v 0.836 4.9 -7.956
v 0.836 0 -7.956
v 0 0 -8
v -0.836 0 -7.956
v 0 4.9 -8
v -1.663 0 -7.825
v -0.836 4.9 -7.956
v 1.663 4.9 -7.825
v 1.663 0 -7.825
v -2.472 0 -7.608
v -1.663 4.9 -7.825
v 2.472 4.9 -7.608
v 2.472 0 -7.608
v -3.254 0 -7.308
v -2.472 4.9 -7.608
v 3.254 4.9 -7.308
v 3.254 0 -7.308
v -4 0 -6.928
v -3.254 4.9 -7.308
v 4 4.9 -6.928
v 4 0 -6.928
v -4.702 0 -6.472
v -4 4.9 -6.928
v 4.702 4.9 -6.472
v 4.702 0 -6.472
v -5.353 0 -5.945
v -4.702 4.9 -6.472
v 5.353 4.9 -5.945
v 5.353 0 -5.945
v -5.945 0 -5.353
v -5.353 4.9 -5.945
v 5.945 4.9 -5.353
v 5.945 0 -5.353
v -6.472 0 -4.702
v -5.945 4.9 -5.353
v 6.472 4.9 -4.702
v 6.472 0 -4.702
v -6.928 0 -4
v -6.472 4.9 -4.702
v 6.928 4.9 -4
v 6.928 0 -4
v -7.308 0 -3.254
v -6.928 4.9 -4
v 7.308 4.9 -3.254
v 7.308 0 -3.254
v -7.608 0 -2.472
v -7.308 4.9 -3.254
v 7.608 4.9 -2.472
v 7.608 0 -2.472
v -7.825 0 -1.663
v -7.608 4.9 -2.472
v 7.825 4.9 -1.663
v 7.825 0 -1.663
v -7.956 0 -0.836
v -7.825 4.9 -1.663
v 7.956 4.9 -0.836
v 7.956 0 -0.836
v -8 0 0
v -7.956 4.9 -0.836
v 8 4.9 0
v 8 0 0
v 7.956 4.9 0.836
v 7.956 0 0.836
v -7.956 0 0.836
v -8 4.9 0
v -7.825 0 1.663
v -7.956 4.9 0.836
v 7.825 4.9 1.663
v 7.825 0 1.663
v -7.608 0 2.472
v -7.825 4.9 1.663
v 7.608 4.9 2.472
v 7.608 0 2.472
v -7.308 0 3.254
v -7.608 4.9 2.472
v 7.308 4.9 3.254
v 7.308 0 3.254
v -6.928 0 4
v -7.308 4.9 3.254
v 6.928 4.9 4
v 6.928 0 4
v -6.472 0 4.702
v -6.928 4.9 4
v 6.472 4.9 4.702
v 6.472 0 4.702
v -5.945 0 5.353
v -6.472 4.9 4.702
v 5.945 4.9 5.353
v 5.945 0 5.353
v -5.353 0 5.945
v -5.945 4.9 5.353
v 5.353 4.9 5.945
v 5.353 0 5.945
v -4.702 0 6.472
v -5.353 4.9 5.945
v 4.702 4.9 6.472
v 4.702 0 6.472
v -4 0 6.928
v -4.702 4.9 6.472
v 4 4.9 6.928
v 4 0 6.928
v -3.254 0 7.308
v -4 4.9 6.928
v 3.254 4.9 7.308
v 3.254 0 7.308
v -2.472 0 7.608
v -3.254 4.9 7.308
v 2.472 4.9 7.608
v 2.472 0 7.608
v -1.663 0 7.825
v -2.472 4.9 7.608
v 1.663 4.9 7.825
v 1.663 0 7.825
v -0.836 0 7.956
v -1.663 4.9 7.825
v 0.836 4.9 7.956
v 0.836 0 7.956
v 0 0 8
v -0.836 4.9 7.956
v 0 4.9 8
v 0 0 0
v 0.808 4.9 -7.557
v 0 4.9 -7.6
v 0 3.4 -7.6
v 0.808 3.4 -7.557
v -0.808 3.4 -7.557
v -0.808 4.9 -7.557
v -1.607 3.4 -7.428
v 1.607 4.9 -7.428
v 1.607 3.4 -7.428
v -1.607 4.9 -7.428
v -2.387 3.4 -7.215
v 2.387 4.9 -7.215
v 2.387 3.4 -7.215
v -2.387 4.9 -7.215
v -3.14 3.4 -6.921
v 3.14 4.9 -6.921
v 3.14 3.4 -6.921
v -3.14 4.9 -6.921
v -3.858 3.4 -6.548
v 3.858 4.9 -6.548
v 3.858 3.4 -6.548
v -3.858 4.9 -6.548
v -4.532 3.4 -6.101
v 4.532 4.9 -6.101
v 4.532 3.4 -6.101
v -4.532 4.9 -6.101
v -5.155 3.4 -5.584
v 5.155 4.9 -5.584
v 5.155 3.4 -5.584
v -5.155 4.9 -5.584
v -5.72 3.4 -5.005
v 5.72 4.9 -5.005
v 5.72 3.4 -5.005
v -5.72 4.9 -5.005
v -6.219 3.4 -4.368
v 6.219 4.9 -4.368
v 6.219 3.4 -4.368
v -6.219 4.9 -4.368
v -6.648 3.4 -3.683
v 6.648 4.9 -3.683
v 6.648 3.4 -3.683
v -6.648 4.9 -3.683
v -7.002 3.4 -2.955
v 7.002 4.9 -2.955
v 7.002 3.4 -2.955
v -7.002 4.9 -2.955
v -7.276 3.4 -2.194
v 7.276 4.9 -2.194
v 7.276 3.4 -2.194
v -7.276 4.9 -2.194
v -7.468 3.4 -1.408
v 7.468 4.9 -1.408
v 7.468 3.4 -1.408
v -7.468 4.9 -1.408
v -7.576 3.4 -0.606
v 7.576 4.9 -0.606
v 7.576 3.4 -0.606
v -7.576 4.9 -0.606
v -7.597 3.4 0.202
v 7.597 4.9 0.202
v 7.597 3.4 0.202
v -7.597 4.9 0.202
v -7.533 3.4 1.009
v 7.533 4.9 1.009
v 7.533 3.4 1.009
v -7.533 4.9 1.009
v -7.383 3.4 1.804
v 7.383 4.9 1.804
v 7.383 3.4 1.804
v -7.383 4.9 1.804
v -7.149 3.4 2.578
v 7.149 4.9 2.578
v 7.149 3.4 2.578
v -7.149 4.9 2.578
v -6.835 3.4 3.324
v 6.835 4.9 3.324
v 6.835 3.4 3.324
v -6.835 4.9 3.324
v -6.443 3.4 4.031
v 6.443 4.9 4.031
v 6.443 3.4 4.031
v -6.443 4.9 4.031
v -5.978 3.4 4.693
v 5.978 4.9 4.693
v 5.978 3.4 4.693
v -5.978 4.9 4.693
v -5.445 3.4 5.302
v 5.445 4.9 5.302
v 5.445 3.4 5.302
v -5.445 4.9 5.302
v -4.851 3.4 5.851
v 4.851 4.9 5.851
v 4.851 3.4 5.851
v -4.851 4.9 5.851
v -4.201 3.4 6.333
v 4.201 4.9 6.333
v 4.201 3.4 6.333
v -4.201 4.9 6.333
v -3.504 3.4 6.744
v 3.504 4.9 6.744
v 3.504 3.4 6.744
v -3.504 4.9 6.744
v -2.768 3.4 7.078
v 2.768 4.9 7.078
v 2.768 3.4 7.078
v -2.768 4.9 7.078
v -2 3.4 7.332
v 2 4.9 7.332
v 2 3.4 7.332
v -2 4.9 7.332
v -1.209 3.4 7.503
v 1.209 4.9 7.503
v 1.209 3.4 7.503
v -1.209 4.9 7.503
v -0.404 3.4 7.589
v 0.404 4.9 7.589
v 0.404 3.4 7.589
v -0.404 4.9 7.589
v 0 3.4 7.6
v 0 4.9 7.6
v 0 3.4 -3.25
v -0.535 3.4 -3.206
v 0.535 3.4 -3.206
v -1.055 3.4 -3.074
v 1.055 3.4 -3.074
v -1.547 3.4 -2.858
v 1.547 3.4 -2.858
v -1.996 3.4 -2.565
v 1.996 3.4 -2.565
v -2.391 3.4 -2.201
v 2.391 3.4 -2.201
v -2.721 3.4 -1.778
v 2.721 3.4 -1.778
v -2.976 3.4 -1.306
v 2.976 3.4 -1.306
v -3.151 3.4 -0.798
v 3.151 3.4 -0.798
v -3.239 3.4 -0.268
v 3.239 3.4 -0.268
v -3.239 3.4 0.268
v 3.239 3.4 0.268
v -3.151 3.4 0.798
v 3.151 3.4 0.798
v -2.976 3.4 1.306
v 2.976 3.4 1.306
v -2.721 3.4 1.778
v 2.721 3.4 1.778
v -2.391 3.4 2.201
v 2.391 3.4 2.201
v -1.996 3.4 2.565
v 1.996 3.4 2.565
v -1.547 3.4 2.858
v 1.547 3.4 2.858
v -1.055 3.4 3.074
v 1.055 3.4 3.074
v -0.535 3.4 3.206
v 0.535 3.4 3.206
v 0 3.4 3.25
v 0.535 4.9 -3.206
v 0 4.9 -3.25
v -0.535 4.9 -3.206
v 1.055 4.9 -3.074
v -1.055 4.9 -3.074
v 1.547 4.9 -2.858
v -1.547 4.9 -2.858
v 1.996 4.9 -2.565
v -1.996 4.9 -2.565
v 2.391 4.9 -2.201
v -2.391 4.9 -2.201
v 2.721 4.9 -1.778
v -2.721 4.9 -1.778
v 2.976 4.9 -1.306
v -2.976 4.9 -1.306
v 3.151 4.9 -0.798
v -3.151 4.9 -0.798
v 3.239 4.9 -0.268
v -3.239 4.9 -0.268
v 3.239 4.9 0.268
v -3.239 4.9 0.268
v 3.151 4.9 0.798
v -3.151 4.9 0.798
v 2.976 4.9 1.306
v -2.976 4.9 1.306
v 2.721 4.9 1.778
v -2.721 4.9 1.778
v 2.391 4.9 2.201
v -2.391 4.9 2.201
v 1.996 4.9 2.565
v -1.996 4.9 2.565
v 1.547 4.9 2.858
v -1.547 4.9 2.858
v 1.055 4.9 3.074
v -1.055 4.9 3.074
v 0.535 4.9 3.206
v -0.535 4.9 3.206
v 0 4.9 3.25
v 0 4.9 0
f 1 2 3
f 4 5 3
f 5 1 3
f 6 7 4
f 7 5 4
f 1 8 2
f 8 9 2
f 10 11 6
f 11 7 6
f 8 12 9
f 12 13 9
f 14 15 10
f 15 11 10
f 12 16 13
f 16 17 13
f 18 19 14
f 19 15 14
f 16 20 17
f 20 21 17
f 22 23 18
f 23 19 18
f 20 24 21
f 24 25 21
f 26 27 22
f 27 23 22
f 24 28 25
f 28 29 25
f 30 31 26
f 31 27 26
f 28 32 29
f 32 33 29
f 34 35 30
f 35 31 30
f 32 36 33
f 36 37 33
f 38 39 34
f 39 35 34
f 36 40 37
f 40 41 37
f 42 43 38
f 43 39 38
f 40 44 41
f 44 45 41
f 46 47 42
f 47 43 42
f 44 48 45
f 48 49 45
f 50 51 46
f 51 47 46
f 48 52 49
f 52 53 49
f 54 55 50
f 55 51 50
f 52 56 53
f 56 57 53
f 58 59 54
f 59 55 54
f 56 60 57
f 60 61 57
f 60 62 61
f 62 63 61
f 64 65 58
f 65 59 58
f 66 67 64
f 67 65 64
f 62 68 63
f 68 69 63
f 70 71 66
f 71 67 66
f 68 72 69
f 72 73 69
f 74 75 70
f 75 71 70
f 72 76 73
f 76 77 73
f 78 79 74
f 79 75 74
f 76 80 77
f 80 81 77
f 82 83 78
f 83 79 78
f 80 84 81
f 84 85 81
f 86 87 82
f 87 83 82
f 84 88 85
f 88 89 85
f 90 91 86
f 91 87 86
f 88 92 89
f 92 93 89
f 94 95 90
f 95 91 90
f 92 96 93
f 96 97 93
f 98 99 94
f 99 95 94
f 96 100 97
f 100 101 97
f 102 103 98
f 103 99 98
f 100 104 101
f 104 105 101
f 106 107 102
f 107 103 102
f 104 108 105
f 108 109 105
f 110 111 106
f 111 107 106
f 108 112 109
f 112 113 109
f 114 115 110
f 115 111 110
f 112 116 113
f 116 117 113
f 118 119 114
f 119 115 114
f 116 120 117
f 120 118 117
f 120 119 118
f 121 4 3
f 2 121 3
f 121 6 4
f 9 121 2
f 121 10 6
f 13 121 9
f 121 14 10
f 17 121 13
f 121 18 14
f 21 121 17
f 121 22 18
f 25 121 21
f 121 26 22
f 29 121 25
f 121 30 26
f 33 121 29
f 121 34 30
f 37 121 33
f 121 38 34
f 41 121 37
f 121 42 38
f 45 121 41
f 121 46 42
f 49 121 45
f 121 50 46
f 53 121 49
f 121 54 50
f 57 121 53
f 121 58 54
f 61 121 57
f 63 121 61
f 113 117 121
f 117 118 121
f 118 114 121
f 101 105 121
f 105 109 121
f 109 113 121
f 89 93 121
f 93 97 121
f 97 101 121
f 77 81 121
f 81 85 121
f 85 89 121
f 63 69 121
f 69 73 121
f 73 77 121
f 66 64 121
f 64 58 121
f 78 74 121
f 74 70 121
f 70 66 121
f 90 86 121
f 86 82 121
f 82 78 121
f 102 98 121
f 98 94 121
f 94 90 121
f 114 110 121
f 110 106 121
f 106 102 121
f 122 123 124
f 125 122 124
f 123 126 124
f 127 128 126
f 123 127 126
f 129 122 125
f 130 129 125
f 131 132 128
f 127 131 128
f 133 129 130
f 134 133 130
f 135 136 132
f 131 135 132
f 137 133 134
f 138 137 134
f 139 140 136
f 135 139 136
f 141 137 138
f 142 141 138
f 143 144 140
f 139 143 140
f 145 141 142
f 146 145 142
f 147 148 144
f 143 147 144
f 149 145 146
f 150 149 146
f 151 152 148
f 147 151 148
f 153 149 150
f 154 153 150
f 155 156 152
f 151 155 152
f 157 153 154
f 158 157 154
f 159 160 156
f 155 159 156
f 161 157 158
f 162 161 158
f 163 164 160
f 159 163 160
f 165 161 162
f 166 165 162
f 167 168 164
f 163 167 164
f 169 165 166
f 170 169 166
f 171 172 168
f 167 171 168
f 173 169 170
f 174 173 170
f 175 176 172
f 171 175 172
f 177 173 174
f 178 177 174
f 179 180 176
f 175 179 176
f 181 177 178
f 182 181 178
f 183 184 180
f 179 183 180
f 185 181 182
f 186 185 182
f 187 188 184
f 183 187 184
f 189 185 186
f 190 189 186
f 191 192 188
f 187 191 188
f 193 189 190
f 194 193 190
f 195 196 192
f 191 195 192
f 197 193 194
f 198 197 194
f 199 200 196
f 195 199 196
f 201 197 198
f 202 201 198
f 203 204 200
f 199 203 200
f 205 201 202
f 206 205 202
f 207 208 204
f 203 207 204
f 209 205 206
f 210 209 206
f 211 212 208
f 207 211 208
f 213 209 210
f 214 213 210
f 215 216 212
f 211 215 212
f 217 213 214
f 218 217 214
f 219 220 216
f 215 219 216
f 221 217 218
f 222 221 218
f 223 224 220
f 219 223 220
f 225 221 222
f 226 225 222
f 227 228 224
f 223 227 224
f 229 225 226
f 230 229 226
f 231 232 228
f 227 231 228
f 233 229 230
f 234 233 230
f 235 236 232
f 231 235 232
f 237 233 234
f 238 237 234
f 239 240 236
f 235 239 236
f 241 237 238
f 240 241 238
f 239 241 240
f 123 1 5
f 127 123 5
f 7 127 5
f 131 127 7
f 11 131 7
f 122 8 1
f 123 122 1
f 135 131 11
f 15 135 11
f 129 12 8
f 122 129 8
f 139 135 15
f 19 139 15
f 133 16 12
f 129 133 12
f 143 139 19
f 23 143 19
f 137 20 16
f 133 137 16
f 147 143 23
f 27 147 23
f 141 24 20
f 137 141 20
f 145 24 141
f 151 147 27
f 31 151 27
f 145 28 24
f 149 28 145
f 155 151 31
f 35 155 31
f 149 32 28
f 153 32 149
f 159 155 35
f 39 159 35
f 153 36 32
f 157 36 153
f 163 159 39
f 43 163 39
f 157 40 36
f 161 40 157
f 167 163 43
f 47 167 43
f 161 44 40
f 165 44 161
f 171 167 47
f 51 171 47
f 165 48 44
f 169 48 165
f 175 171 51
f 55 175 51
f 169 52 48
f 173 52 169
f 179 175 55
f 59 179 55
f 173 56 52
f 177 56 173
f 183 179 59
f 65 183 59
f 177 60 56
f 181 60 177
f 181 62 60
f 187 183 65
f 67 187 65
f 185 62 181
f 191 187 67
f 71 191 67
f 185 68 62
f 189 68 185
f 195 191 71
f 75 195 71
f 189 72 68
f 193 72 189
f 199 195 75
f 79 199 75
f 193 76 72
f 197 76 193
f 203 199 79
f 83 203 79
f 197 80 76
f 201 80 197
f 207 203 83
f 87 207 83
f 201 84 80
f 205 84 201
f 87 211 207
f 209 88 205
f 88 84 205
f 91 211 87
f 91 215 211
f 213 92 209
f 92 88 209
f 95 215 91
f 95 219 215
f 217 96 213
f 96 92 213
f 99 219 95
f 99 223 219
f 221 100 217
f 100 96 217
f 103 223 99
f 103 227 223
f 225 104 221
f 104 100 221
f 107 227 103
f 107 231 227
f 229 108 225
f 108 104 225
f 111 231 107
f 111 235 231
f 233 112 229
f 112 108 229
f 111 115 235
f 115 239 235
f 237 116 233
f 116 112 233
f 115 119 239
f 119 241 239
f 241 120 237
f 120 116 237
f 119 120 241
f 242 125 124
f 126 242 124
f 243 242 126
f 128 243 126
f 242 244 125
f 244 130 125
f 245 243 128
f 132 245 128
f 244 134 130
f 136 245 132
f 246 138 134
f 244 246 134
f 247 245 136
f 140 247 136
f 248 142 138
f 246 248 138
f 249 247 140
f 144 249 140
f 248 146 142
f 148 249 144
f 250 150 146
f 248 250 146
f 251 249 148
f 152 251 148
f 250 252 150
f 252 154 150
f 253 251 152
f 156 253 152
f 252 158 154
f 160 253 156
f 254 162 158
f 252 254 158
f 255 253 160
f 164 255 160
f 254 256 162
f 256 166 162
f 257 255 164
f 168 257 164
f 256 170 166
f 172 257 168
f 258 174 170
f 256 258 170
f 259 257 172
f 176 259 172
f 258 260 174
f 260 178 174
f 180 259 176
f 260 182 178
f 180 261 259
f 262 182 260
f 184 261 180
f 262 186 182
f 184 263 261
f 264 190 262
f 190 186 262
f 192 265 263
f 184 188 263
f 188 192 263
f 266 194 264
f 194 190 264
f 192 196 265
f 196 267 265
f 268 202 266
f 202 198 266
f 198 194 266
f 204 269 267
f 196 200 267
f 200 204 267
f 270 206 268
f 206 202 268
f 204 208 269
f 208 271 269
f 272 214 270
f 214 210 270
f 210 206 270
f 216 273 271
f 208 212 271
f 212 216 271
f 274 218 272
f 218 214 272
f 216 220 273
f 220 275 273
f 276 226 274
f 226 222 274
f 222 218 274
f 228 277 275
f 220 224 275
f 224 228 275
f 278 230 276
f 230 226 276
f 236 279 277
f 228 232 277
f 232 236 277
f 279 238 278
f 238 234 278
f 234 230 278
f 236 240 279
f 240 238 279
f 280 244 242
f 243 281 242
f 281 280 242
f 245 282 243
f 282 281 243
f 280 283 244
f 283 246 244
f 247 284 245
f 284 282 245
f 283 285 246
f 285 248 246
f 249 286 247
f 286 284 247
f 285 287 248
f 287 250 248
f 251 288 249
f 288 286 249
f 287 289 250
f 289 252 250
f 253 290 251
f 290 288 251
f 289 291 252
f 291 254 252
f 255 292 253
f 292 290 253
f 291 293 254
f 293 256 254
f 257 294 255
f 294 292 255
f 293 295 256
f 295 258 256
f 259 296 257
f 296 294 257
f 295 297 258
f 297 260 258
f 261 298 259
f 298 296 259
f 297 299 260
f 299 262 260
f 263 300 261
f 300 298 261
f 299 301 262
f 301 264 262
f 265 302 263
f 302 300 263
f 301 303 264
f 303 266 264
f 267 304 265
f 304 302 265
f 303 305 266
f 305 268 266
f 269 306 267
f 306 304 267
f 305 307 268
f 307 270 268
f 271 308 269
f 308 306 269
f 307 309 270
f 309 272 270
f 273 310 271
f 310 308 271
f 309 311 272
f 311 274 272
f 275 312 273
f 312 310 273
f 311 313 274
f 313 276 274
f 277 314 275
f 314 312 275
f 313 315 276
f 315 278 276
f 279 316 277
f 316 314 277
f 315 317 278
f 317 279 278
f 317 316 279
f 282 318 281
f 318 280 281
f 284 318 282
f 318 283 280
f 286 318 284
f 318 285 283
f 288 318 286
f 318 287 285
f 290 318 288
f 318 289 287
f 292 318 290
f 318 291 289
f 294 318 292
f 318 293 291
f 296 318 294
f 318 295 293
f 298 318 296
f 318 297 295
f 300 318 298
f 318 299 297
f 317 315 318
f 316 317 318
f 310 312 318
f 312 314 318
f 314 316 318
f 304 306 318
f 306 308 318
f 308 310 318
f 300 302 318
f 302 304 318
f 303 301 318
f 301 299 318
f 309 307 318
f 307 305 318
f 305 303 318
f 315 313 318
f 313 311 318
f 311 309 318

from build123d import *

# Parameters (mm, degrees)
SKETCH1_R           = 8
BOSS_EXTRUDE1_DEPTH = 3.4
SKETCH2_R           = 8
SKETCH2_R_2         = 7.6
SKETCH2_R_3         = 3.25
BOSS_EXTRUDE2_DEPTH = 1.5


with BuildPart() as part:
    # Sketch1 → Boss-Extrude1 (new body)
    with BuildSketch(Plane(origin=(0, 0, 0), x_dir=(1, 0, 0), z_dir=(0, 1, 0))):
        with Locations(Location((0, 0, 0), (0, 0, 270))):
            Circle(SKETCH1_R)
    extrude(amount=BOSS_EXTRUDE1_DEPTH)

    # Sketch2 → Boss-Extrude2 (add)
    # profile 1 of 2: a face of its own
    with BuildSketch(Plane(origin=(0, 3.4, 0), x_dir=(1, 0, 0), z_dir=(0, 1, 0))):
        with Locations(Location((0, 0, 0), (0, 0, 270))):
            Circle(SKETCH2_R)
        with Locations(Location((0, 0, 0), (0, 0, 270))):
            Circle(SKETCH2_R_2, mode=Mode.SUBTRACT)
    # profile 2 of 2: a face of its own
    with BuildSketch(Plane(origin=(0, 3.4, 0), x_dir=(1, 0, 0), z_dir=(0, 1, 0))):
        with Locations(Location((0, 0, 0), (0, 0, 270))):
            Circle(SKETCH2_R_3)
    extrude(amount=BOSS_EXTRUDE2_DEPTH)


solid = part.part
